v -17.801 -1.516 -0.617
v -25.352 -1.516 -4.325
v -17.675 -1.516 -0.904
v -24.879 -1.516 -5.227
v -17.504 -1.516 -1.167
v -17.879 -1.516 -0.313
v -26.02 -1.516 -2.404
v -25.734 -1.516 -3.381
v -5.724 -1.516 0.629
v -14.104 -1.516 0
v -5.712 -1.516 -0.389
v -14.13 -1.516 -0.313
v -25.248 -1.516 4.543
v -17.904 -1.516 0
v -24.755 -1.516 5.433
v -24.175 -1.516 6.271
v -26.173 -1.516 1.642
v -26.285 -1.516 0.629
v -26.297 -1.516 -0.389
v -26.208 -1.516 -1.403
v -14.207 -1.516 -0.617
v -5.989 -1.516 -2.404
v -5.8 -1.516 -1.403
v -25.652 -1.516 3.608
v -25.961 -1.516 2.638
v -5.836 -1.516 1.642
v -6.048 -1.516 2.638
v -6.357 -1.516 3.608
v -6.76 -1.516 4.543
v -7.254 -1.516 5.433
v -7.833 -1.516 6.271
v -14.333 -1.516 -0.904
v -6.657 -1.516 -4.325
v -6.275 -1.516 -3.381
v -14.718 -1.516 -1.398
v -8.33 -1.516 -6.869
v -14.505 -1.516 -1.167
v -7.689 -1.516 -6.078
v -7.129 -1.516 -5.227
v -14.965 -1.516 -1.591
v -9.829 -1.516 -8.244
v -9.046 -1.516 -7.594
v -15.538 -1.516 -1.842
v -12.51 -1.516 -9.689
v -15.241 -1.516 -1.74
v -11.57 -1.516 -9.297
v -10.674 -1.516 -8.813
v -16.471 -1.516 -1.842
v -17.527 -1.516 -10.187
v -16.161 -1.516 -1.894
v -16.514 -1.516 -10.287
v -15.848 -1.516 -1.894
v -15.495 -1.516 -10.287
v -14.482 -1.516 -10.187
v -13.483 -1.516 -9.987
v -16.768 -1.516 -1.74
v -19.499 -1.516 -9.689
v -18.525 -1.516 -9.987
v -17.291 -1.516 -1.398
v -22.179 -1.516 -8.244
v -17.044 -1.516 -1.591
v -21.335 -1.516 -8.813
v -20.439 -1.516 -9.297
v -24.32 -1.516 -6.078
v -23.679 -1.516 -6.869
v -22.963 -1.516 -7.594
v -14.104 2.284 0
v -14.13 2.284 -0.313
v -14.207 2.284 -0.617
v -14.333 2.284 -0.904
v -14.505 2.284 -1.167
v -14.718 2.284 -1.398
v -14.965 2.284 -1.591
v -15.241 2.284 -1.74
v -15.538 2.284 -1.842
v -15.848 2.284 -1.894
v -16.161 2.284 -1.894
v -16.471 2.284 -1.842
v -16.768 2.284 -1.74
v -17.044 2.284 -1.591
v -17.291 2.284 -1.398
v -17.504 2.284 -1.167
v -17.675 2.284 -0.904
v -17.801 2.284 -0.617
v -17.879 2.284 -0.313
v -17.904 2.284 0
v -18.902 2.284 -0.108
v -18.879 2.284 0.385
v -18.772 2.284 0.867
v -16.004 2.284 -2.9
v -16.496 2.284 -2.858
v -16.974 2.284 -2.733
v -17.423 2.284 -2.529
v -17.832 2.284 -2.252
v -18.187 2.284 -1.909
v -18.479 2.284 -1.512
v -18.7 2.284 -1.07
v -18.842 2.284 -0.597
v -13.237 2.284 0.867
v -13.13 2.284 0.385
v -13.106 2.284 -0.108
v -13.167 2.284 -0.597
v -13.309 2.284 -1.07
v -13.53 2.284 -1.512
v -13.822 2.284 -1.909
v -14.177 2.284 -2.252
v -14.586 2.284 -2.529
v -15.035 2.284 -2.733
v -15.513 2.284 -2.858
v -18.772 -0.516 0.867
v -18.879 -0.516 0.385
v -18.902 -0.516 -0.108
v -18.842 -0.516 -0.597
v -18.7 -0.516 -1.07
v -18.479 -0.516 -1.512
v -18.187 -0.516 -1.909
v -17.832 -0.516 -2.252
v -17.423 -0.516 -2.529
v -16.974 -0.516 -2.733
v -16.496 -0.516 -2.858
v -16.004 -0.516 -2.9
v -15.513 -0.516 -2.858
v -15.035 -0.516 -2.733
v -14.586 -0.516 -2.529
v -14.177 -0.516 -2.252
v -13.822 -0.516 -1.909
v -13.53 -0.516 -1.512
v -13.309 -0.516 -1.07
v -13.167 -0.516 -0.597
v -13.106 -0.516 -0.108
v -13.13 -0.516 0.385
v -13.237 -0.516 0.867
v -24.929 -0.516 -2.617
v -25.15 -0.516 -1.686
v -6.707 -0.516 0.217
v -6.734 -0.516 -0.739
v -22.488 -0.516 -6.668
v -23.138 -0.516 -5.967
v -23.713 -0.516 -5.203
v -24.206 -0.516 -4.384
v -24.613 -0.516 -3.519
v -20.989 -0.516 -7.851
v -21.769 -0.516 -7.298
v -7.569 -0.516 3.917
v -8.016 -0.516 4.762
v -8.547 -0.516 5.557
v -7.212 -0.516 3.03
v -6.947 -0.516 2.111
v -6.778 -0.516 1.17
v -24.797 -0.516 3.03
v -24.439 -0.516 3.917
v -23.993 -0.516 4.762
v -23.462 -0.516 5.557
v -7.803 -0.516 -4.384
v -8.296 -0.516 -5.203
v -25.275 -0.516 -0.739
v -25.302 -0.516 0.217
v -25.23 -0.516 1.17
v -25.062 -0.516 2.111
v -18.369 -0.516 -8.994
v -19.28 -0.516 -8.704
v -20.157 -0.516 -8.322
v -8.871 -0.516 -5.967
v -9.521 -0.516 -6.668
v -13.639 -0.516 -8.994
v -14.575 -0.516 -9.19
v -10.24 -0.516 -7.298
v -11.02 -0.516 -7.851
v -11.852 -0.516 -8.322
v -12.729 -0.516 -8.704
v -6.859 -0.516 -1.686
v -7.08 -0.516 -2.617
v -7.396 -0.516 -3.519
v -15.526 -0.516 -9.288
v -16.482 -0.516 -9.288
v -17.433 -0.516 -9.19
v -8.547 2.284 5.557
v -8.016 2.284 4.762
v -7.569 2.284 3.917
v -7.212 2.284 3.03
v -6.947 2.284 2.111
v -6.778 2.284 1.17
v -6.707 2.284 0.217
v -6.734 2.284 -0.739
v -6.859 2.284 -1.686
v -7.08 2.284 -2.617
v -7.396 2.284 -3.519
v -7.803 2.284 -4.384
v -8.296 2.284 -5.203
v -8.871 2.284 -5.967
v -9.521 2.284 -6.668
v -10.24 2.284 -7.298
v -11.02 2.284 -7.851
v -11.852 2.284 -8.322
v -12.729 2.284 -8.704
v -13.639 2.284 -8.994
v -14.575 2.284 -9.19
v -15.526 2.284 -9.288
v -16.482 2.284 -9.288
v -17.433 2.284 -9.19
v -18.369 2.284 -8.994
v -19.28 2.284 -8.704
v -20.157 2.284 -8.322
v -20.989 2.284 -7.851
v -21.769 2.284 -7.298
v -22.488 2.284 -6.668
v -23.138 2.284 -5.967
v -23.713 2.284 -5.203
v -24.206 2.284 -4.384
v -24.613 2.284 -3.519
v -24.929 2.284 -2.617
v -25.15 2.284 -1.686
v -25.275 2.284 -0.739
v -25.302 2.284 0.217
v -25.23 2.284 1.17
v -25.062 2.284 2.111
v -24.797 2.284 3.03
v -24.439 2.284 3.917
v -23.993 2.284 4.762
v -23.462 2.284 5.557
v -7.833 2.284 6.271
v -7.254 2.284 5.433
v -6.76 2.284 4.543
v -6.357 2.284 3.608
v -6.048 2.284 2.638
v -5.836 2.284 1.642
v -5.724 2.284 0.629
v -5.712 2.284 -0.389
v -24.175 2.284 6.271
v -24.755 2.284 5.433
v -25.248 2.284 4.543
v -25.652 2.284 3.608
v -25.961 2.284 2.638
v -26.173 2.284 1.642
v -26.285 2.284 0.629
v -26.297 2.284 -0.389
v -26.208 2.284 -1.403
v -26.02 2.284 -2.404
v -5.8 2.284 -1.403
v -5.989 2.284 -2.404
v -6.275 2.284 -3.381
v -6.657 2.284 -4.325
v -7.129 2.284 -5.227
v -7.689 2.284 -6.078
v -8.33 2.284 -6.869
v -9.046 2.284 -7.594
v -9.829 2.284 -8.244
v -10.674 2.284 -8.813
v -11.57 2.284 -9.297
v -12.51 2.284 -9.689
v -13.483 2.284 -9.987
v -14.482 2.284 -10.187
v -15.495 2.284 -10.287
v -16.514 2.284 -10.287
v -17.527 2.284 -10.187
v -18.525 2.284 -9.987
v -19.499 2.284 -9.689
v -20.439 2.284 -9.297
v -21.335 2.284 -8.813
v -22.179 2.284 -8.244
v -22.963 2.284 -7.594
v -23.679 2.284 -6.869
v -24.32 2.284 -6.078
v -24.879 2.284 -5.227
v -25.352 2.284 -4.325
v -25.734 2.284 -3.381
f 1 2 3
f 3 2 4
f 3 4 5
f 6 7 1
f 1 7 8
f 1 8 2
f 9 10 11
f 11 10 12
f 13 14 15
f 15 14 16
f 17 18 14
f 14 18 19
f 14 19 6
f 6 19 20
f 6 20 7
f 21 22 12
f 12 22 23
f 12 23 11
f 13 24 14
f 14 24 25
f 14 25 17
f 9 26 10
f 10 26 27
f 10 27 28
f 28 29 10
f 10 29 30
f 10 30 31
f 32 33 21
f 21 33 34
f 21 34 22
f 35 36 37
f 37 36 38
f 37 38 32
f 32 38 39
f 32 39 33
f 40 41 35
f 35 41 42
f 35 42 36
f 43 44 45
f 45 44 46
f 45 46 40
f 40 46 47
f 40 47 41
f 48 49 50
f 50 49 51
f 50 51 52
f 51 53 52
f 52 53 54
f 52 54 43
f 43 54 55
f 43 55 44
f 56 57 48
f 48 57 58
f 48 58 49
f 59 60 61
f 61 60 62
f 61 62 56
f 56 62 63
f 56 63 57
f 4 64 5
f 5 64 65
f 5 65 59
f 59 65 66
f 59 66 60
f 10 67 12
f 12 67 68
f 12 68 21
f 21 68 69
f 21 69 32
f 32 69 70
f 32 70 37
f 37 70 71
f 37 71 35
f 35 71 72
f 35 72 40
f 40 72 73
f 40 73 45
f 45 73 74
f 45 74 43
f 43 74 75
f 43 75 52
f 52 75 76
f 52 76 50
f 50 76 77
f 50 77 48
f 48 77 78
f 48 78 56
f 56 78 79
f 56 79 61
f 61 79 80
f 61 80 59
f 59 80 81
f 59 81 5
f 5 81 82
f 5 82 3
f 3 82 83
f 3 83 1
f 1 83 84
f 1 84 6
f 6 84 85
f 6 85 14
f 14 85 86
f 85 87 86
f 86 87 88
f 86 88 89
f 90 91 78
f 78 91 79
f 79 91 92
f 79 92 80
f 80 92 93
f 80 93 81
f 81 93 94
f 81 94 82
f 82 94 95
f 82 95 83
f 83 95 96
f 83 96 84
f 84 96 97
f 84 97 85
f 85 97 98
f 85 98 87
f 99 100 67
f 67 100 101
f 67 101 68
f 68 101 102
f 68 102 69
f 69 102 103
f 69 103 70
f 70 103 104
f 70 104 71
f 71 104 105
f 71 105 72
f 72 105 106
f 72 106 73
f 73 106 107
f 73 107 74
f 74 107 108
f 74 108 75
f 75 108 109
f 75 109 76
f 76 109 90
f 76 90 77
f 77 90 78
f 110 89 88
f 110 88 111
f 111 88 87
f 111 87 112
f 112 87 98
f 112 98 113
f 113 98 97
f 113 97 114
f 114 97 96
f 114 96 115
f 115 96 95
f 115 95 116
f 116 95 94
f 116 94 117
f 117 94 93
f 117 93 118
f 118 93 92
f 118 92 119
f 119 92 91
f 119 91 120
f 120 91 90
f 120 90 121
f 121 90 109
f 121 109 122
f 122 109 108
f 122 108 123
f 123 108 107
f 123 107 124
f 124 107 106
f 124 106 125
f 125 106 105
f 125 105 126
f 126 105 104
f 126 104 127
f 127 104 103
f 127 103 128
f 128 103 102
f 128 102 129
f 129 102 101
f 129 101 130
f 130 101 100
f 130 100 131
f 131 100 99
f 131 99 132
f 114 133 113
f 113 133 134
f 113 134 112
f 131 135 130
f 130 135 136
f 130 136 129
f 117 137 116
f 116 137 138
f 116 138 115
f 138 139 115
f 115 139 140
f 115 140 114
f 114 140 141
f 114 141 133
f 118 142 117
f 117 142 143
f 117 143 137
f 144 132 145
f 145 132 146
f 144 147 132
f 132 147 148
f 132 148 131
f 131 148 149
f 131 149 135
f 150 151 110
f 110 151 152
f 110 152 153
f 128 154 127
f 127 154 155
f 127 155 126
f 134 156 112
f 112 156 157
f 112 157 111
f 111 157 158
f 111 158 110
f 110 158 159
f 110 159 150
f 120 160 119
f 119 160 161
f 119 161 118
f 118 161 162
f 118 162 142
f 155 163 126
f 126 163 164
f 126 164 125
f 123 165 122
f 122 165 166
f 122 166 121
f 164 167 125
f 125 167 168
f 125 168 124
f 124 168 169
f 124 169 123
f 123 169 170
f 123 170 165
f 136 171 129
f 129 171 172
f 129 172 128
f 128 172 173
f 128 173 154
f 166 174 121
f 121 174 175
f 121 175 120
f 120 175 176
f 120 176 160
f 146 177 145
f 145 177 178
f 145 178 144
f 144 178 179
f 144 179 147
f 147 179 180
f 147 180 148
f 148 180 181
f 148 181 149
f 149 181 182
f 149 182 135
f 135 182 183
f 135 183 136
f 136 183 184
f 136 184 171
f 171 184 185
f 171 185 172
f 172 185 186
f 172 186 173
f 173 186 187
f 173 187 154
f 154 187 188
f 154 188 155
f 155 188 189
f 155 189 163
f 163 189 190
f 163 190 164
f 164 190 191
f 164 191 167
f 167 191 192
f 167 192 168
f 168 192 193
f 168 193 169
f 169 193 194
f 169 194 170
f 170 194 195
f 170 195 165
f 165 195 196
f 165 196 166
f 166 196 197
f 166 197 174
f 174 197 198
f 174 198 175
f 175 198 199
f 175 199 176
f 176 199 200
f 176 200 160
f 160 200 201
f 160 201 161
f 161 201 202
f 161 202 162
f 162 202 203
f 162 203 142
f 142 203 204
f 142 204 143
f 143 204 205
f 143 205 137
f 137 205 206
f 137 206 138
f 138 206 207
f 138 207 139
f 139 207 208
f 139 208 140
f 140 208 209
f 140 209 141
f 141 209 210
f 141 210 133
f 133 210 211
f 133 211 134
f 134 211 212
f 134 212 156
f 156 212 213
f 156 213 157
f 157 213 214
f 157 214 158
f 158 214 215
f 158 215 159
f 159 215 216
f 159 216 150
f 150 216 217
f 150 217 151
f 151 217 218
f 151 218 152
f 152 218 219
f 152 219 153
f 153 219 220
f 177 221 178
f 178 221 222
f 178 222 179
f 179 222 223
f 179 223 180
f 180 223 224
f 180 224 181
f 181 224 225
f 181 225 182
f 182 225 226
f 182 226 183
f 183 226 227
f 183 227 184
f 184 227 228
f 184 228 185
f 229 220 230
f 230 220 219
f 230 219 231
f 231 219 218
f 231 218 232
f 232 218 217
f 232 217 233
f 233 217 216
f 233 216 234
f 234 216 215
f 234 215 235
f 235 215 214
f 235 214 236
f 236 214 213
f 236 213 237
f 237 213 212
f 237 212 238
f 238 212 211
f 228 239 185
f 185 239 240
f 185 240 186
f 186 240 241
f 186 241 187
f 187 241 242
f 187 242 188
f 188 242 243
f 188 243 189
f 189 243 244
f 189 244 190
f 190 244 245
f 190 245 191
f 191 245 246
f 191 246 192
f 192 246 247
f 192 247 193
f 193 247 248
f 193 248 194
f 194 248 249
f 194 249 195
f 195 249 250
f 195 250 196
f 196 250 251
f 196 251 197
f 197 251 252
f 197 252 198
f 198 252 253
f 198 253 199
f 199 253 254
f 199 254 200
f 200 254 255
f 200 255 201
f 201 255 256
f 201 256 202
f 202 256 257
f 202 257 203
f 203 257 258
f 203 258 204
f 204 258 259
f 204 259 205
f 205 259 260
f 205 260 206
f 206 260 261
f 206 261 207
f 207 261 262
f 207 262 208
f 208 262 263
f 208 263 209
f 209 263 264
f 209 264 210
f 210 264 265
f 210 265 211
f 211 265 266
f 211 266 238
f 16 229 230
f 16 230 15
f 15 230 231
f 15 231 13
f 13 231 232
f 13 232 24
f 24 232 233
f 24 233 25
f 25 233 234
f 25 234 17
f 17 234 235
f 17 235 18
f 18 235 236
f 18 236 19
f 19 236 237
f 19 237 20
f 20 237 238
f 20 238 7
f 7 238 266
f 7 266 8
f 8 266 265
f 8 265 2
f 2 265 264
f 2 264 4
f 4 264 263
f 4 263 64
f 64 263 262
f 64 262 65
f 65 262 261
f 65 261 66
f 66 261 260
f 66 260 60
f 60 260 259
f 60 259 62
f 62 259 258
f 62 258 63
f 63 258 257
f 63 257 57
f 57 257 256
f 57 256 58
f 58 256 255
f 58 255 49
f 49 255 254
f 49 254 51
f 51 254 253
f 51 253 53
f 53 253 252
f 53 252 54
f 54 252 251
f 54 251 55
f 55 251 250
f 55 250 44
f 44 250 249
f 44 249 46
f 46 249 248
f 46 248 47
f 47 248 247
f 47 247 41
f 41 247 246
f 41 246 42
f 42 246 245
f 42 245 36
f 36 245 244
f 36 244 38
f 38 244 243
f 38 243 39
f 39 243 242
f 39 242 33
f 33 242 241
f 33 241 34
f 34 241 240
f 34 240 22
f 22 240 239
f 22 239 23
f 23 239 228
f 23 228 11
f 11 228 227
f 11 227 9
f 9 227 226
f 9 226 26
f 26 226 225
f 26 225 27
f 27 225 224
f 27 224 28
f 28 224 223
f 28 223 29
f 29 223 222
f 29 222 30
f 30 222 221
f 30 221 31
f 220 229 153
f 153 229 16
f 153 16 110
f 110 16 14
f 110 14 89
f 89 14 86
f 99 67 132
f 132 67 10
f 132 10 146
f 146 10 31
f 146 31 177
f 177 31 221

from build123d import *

# Parameters (mm, degrees)
CORTAR_EXTRUIR1_DEPTH = 10


with BuildPart() as part:
    # Croquis1 → Revolución1 (revolve)
    with BuildSketch(Plane.XY, mode=Mode.PRIVATE) as revoluci_n1_sk:
        Polygon((-17.904415608, -1.515813334), (-17.904415608, 2.284186666), (-18.904415608, 2.284186666), (-18.904415608, -0.515813334), (-25.304415608, -0.515813334), (-25.304415608, 2.284186666), (-26.304415608, 2.284186666), (-26.304415608, -1.515813334), align=None)
    revolve(revoluci_n1_sk.sketch.rotate(Axis((-16.004415608, 9.150344382, 0), (0, -1, 0)), 270), axis=Axis((-16.004415608, 9.150344382, 0), (0, -1, 0)))

    # Croquis2 → Cortar-Extruir1 (cut)
    with BuildSketch(Plane(origin=(0, 2.284186666, 0), x_dir=(1, 0, 0), z_dir=(0, 1, 0))):
        with BuildLine():
            Line((-17.904415608, 0), (-24.175391996, -6.270976388))
            ThreePointArc((-24.175391996, -6.270976388), (-16.004415608, -10.3), (-7.833439219, -6.270976388))
            Line((-7.833439219, -6.270976388), (-14.104415608, 0))
            ThreePointArc((-14.104415608, 0), (-16.004415608, -1.9), (-17.904415608, 0))
        make_face()
    extrude(amount=-CORTAR_EXTRUIR1_DEPTH, mode=Mode.SUBTRACT)


solid = part.part
